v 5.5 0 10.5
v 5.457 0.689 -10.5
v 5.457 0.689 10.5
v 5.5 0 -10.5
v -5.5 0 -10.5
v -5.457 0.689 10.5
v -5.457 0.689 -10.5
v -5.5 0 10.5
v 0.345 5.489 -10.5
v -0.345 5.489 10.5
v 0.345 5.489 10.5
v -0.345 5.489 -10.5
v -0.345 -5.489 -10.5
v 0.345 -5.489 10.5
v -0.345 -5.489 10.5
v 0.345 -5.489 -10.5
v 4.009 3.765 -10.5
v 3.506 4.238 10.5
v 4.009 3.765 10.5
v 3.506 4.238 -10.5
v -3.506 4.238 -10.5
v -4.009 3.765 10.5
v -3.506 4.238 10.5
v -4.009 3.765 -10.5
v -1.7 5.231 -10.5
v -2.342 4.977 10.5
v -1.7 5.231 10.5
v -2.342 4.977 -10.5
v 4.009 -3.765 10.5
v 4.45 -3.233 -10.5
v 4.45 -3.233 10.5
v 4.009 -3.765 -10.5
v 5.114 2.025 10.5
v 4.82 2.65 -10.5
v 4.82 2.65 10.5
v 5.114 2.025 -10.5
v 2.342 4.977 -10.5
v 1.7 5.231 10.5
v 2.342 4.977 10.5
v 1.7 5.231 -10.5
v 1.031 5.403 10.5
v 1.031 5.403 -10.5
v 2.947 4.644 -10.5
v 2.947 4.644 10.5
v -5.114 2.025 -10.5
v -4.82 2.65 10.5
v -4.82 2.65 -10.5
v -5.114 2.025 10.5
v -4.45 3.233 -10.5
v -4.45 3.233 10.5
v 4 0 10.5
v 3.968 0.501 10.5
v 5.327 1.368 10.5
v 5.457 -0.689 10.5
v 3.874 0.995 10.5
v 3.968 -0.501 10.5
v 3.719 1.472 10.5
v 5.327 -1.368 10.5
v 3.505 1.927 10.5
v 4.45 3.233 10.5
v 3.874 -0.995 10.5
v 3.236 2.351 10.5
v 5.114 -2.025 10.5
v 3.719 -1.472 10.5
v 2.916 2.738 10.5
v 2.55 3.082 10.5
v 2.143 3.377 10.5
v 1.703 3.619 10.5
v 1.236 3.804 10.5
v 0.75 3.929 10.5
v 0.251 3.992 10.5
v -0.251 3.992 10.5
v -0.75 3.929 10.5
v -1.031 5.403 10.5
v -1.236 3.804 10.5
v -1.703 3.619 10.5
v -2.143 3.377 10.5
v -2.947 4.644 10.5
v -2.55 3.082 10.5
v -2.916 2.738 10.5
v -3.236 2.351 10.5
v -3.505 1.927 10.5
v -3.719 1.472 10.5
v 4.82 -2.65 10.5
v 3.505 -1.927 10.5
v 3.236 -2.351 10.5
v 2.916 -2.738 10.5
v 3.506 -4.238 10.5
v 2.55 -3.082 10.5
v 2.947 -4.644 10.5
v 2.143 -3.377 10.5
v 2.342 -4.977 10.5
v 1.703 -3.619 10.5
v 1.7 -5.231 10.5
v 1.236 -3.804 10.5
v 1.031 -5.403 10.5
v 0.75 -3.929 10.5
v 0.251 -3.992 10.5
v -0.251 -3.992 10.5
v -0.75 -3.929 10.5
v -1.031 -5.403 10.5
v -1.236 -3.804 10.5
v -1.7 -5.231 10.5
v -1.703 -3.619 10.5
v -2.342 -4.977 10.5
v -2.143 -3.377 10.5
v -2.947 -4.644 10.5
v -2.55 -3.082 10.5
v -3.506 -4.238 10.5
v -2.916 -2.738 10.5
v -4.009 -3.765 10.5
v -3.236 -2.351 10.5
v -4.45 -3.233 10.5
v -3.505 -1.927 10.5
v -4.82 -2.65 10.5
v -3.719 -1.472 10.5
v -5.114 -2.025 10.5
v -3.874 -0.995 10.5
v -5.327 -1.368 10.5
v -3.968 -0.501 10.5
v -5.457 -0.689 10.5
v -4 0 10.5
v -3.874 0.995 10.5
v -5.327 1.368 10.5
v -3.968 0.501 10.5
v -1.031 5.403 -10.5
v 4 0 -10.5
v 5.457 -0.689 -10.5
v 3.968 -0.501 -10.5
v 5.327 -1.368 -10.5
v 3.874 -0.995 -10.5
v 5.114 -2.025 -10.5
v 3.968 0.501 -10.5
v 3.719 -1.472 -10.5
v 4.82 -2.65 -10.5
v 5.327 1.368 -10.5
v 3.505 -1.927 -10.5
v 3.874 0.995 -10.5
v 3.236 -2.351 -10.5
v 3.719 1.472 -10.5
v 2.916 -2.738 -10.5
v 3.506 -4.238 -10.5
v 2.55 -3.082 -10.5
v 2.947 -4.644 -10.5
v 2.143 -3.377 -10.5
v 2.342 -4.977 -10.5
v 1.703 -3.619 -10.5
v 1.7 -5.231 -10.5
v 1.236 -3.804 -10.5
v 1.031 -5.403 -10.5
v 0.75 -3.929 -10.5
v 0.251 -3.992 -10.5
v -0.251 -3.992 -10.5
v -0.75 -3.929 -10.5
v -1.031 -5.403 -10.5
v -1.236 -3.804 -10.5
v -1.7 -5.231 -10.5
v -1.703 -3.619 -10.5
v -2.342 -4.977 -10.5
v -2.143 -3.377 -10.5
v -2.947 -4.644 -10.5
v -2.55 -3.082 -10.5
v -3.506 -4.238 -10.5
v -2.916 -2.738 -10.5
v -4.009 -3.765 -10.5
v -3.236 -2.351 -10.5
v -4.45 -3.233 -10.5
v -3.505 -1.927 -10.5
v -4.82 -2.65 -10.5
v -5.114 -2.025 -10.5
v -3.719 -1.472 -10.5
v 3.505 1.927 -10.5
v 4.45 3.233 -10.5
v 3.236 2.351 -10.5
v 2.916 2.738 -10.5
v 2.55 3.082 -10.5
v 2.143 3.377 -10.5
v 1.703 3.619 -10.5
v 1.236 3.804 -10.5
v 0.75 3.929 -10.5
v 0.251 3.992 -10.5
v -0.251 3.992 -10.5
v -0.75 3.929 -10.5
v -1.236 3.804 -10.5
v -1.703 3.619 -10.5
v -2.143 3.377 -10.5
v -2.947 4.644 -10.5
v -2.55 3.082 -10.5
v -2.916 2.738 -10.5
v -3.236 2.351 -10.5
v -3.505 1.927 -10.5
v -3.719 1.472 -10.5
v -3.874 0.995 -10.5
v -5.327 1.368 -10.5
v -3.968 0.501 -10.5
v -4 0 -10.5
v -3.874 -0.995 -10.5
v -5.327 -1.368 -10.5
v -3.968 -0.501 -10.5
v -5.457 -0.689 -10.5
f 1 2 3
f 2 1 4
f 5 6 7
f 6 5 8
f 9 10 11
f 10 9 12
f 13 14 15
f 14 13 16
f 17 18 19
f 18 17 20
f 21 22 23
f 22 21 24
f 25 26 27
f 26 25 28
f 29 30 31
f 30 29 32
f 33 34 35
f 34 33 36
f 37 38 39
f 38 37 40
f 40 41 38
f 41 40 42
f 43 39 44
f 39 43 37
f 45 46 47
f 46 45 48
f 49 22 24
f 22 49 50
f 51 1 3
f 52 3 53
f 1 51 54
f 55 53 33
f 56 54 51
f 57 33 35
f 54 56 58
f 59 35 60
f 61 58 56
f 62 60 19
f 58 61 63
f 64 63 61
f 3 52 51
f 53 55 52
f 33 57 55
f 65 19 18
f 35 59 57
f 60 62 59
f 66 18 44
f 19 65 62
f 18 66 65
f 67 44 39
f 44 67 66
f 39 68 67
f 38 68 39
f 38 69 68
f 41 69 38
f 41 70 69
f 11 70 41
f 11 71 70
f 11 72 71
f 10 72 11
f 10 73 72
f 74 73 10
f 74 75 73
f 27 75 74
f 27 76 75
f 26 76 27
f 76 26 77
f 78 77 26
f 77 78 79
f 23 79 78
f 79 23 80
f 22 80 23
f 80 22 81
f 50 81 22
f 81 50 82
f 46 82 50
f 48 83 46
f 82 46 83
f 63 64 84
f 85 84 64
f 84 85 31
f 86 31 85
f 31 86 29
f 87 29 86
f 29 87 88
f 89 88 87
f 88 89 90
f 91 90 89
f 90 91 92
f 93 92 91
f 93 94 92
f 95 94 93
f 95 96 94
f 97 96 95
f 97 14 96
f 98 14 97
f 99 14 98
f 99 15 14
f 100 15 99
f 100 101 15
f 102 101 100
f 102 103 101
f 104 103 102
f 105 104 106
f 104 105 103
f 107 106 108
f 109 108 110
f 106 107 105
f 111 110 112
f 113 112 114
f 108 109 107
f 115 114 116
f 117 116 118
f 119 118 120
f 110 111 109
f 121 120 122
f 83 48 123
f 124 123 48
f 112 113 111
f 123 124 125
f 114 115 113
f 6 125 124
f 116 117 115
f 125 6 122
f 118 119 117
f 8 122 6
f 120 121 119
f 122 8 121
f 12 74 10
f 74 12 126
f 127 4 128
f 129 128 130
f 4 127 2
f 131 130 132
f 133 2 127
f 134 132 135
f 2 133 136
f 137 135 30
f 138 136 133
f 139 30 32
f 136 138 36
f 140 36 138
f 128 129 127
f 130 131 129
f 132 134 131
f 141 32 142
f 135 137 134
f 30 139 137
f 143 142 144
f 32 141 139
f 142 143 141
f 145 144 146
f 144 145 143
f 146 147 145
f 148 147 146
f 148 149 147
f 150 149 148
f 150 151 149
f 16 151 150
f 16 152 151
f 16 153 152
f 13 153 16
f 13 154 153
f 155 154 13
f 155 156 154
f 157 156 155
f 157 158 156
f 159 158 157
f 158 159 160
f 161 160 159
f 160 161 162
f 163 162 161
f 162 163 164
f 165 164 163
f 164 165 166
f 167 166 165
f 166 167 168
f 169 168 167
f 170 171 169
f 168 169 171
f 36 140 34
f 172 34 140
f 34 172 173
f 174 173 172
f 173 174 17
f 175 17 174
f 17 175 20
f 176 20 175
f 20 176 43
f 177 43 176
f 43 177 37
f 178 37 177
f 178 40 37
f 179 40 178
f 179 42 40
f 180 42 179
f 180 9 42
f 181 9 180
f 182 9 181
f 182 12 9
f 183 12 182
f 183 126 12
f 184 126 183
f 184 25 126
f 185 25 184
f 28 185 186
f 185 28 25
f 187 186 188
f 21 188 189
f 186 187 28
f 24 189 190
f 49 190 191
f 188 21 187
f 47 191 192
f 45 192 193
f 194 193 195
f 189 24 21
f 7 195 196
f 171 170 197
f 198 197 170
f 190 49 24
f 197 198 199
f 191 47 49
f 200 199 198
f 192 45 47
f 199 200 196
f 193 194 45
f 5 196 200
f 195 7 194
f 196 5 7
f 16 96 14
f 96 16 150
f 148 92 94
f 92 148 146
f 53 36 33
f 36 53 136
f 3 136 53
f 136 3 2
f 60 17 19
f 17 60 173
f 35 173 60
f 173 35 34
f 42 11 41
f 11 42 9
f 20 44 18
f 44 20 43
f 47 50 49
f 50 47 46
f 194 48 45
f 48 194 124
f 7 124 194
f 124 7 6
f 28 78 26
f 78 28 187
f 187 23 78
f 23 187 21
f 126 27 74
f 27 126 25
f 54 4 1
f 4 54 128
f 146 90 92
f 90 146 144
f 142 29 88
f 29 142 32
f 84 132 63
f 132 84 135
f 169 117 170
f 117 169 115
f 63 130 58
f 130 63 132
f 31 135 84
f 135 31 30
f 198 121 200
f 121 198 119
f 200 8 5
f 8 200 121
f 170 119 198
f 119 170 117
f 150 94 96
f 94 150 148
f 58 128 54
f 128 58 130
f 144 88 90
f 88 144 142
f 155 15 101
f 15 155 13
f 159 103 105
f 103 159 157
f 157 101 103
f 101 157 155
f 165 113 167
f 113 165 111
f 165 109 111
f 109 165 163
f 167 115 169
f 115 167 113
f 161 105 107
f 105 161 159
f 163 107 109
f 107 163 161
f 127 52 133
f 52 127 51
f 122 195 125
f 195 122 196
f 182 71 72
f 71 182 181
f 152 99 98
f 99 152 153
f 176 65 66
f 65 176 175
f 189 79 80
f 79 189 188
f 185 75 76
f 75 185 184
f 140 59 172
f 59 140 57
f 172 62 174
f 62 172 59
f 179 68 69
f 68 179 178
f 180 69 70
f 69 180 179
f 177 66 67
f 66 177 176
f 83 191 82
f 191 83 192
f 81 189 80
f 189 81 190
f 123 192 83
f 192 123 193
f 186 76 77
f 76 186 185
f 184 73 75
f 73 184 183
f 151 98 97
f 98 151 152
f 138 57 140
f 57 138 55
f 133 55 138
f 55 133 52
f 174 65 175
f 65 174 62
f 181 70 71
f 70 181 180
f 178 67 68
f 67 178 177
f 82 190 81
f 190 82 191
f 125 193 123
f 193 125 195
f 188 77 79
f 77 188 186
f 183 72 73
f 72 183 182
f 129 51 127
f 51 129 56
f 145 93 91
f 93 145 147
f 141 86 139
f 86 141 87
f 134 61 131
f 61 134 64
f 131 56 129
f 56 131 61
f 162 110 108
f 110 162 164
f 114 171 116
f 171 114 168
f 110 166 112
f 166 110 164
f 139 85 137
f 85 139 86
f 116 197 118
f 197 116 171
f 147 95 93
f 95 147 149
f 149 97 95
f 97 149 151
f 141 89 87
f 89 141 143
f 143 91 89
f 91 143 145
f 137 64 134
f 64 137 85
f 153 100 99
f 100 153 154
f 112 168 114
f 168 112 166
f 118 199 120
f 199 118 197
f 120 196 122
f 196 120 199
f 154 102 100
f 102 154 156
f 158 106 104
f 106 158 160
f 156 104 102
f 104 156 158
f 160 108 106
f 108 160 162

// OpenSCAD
$fn = 50;


difference() {
	union() {
		translate(v = [0, 0, -10.5000000000]) {
			cylinder(h = 21, r = 5.5000000000);
		}
	}
	union() {
		translate(v = [0, 0, -100.0000000000]) {
			cylinder(h = 200, r = 4);
		}
	}
}
